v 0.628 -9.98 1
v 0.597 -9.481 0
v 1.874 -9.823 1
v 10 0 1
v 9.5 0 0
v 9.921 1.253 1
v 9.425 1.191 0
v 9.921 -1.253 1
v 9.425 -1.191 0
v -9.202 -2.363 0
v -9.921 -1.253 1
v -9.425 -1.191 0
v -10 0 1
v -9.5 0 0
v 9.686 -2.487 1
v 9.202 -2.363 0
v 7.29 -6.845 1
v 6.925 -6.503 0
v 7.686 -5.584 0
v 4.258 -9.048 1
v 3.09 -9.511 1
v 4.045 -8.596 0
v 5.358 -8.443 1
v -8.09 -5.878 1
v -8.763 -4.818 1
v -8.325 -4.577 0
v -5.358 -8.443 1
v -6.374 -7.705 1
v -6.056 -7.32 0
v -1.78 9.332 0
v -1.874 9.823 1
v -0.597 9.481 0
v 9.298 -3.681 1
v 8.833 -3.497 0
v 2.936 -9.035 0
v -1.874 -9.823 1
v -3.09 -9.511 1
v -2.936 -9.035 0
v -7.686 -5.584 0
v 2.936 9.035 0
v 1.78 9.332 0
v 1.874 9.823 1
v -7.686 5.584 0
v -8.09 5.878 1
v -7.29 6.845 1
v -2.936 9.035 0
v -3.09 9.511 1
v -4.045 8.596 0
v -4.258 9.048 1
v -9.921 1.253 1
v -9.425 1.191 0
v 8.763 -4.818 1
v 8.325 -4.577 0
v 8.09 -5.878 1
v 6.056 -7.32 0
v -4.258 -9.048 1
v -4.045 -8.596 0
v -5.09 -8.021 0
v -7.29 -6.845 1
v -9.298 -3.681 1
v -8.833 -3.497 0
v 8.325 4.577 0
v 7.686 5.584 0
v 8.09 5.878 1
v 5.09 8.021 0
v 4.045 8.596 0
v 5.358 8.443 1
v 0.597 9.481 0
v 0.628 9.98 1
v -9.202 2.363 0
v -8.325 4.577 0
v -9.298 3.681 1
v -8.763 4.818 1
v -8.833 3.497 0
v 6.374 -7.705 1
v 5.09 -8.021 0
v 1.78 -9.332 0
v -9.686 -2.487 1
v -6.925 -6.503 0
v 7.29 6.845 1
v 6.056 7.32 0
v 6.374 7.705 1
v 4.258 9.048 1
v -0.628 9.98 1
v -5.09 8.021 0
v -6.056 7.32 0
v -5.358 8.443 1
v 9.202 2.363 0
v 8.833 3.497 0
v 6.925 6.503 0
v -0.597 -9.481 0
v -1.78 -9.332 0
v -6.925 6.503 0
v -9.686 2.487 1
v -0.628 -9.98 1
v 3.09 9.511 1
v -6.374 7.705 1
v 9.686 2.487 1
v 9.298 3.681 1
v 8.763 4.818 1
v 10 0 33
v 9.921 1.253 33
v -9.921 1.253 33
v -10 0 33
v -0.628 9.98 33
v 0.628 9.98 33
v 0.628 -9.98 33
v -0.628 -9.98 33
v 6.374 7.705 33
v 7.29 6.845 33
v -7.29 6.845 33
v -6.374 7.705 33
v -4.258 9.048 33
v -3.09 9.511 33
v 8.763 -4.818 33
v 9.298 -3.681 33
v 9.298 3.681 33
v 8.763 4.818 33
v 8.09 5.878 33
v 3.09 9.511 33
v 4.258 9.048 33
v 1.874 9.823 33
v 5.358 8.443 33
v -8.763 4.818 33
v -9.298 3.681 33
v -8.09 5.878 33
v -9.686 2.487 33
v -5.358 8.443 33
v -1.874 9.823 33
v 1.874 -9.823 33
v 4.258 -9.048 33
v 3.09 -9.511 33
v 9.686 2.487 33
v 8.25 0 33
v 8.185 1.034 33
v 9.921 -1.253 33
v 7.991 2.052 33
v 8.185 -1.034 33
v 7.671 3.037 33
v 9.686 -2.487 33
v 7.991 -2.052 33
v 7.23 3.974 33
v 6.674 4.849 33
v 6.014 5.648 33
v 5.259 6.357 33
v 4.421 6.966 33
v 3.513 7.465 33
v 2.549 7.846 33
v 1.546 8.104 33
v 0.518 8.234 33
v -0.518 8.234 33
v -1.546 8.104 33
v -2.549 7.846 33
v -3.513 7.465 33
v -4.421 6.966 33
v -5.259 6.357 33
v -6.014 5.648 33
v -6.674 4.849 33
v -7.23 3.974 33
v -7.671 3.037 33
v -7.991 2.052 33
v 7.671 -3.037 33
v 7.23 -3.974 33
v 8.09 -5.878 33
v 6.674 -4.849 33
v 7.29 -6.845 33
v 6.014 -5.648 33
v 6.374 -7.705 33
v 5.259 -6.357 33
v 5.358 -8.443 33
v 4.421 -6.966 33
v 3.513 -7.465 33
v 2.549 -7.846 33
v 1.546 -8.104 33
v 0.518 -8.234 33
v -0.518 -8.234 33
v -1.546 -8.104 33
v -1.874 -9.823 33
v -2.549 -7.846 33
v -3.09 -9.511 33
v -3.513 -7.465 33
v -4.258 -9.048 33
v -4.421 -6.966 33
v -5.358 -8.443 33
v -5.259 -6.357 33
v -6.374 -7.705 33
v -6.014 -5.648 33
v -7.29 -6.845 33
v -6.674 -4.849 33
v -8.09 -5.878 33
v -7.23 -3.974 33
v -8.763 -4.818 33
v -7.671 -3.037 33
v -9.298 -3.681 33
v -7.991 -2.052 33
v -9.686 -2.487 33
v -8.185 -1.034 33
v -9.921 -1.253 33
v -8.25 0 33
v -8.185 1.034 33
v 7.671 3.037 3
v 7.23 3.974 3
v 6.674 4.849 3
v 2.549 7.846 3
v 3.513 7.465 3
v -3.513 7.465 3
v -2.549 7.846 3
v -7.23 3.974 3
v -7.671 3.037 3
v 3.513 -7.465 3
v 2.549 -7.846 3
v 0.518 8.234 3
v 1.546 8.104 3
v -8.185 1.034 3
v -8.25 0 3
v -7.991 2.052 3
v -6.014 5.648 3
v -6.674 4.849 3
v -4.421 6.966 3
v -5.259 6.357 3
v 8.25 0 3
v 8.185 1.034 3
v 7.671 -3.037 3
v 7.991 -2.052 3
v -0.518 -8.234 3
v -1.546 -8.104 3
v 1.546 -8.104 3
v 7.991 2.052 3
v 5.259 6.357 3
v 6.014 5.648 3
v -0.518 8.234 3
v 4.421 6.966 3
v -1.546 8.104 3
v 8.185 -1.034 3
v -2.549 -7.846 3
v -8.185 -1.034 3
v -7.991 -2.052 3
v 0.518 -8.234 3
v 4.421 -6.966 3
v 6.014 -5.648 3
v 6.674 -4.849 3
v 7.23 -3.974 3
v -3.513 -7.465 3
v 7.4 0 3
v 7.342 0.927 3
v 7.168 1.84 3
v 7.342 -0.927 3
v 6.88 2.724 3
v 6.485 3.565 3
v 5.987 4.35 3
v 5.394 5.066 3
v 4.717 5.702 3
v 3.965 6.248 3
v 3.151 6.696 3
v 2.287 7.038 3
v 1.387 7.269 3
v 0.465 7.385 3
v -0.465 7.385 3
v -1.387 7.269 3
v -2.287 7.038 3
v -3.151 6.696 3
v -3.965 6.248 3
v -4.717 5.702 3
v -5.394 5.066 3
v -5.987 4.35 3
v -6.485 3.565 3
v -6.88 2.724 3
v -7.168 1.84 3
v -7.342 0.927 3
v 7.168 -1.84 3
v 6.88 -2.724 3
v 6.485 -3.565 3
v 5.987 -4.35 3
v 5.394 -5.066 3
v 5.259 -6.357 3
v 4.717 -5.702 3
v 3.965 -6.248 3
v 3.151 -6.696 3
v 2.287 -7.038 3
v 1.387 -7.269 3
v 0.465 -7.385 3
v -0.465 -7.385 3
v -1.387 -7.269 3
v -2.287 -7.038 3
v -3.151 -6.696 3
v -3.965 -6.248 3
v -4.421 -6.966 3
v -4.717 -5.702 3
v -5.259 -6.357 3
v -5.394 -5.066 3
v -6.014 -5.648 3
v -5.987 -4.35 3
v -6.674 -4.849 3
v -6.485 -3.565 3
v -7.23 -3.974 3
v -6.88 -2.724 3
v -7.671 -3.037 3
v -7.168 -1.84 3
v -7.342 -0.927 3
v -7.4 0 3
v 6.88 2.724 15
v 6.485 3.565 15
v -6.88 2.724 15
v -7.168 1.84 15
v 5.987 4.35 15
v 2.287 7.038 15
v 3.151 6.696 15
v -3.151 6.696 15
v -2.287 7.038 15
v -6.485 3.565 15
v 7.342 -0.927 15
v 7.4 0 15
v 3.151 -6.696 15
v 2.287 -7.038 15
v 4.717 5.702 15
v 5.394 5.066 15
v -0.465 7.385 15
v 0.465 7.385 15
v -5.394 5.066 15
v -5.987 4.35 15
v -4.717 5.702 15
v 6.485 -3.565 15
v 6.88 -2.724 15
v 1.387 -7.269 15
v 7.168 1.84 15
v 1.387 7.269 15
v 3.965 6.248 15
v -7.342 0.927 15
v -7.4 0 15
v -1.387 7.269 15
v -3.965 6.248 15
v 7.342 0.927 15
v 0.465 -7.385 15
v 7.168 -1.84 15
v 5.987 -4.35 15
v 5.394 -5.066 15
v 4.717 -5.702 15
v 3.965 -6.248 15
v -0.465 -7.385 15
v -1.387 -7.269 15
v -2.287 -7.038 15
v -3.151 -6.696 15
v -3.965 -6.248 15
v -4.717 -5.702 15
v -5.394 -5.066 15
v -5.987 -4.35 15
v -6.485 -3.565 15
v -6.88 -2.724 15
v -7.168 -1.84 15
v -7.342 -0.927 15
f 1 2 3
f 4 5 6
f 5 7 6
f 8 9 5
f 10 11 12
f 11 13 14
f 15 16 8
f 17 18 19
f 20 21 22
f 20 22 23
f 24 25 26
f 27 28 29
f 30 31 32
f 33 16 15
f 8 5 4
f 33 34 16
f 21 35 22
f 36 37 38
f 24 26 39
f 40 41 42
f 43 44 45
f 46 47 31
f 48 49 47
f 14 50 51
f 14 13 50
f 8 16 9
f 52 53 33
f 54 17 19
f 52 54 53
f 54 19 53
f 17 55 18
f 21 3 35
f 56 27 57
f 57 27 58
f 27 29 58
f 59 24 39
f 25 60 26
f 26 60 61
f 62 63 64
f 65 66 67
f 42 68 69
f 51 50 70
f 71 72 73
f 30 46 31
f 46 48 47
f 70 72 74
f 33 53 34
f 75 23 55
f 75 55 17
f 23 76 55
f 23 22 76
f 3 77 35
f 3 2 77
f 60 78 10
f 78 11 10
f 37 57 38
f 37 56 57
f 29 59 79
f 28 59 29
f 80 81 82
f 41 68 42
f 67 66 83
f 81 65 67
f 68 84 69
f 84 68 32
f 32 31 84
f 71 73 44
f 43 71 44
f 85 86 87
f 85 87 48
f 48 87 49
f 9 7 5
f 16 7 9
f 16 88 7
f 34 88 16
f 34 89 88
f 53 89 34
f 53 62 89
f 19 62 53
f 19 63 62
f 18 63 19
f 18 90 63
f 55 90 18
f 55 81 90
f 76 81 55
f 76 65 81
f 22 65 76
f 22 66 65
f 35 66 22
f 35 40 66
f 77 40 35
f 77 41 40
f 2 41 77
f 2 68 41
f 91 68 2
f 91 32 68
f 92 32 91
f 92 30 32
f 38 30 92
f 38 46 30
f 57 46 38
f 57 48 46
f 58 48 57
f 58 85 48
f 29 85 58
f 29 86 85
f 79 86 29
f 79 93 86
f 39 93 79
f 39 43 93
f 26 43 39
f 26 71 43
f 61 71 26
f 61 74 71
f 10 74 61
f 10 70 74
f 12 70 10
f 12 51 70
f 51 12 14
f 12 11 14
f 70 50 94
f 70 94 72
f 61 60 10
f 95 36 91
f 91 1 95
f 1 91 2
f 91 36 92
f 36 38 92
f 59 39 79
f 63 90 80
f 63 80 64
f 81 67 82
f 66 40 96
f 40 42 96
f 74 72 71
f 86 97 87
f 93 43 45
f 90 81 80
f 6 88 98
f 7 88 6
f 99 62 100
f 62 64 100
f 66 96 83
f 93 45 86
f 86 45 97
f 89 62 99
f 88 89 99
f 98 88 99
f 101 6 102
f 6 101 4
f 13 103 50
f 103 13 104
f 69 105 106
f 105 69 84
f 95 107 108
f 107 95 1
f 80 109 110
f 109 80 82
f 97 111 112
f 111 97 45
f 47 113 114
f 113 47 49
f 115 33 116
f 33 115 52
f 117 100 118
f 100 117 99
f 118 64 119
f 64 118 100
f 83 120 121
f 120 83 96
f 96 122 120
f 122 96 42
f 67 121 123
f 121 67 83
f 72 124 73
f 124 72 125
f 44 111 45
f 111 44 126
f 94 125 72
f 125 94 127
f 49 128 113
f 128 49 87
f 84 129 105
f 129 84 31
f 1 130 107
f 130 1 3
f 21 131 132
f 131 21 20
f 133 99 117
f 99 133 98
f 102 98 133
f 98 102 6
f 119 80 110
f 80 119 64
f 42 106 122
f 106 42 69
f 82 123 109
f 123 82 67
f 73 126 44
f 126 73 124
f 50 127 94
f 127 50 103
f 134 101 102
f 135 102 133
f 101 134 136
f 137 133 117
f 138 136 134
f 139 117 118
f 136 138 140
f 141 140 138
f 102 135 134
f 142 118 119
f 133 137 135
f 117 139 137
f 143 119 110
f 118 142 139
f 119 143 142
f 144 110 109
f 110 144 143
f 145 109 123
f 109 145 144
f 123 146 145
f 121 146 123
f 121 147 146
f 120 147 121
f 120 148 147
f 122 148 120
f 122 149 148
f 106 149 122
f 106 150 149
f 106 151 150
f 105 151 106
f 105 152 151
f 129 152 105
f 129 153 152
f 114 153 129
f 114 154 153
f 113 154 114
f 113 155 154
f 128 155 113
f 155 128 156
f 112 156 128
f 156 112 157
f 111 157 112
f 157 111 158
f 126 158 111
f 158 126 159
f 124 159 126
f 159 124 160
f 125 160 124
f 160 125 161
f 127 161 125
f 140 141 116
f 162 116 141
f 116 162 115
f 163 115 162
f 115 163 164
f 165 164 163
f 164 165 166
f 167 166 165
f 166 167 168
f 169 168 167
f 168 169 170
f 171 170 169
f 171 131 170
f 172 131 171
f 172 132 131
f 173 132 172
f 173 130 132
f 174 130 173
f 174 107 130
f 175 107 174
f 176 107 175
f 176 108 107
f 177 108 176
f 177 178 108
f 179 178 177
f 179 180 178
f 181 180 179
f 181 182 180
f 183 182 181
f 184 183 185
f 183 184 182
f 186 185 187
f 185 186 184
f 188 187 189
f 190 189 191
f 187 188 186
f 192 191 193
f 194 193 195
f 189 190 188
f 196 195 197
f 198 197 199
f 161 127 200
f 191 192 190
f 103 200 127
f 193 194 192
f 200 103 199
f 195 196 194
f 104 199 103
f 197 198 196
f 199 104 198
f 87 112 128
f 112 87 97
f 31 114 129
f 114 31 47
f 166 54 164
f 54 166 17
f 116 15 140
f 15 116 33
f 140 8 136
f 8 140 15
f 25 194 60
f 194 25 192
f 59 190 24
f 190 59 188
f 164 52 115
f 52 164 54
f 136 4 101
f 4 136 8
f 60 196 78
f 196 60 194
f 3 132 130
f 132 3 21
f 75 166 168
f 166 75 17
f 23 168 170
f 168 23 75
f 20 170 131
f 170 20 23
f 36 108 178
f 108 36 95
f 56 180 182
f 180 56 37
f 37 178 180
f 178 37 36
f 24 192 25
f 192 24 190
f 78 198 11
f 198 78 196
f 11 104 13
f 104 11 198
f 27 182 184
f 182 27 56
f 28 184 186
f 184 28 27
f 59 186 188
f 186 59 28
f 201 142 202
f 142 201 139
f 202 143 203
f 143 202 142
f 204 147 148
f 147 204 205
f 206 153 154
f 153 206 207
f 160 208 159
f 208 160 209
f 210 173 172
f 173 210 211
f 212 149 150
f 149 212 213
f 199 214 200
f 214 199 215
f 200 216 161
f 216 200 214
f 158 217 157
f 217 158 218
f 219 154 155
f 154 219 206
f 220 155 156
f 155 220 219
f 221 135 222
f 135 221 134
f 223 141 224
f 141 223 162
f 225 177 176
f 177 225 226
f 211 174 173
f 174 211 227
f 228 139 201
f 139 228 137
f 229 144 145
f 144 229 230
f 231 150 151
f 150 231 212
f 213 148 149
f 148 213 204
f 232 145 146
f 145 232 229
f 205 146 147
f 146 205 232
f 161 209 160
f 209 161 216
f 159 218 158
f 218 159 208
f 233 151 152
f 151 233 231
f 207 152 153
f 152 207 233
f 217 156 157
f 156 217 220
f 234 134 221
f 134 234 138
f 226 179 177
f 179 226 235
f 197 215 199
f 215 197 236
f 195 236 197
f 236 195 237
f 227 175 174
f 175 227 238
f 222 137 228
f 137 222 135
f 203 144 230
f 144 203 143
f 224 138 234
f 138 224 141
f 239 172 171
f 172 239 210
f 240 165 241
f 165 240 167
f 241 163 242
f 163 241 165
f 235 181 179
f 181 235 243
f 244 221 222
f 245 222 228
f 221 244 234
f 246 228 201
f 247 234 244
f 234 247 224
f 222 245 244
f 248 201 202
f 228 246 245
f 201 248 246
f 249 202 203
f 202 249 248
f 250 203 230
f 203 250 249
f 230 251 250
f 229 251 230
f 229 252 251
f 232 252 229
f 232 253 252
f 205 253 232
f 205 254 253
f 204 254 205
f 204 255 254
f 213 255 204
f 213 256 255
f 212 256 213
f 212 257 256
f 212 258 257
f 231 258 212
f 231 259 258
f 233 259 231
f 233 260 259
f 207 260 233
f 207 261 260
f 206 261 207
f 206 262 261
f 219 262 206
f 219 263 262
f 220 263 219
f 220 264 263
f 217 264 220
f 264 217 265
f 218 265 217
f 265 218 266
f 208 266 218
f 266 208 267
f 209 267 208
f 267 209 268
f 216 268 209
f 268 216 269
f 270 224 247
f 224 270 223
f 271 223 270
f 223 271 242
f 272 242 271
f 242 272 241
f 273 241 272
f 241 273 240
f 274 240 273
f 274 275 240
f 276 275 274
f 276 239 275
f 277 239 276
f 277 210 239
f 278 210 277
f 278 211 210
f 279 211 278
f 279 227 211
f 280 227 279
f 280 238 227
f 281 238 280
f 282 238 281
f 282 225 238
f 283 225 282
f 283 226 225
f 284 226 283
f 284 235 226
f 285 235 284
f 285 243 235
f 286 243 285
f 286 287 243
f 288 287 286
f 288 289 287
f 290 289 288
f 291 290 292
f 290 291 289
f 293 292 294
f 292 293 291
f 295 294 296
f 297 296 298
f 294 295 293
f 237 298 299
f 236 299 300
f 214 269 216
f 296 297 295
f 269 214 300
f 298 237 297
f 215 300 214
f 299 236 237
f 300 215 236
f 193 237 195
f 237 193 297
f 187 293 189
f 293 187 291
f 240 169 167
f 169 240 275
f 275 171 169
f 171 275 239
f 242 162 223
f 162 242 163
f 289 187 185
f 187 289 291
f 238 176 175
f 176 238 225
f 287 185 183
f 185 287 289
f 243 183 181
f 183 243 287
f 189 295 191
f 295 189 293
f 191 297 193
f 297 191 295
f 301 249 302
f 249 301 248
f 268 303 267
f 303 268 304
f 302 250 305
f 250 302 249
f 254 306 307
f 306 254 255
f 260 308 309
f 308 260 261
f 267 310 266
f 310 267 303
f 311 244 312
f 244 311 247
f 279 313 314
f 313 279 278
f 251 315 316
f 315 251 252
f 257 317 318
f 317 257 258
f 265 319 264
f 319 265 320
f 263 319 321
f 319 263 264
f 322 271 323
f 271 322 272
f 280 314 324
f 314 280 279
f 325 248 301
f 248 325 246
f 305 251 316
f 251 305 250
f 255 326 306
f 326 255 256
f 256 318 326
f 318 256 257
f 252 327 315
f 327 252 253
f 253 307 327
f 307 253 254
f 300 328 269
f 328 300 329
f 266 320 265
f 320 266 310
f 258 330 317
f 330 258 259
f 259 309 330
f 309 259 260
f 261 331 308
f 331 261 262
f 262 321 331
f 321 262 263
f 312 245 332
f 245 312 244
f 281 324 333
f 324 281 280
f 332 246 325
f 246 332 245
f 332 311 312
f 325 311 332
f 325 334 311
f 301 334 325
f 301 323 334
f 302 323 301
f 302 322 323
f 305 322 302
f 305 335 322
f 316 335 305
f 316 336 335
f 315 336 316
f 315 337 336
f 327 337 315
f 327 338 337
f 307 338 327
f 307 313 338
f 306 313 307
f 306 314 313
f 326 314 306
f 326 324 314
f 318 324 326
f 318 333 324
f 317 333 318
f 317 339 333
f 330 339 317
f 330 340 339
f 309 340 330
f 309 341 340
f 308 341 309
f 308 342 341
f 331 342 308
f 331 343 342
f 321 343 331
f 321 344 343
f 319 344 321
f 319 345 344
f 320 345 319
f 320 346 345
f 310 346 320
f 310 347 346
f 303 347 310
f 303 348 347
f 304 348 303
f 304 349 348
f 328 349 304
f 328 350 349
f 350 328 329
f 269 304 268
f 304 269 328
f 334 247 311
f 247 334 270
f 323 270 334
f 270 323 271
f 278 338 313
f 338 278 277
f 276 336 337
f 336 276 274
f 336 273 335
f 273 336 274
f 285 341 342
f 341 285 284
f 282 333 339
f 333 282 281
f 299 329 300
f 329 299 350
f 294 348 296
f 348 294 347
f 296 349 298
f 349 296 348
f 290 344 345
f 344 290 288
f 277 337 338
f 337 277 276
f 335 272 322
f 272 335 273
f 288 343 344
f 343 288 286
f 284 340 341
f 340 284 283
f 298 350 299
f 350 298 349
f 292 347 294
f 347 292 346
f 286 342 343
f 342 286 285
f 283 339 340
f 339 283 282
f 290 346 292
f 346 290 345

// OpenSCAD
$fn=50;
difference(){
    union(){
        cylinder(1,19/2,20/2);
        translate([0,0,1]) cylinder(32,20/2,20/2);
    }
    translate([0,0,3]) cylinder(32,16.5/2,16.5/2);
}
translate([0,0,3]) cylinder(12,14.8/2,14.8/2);
